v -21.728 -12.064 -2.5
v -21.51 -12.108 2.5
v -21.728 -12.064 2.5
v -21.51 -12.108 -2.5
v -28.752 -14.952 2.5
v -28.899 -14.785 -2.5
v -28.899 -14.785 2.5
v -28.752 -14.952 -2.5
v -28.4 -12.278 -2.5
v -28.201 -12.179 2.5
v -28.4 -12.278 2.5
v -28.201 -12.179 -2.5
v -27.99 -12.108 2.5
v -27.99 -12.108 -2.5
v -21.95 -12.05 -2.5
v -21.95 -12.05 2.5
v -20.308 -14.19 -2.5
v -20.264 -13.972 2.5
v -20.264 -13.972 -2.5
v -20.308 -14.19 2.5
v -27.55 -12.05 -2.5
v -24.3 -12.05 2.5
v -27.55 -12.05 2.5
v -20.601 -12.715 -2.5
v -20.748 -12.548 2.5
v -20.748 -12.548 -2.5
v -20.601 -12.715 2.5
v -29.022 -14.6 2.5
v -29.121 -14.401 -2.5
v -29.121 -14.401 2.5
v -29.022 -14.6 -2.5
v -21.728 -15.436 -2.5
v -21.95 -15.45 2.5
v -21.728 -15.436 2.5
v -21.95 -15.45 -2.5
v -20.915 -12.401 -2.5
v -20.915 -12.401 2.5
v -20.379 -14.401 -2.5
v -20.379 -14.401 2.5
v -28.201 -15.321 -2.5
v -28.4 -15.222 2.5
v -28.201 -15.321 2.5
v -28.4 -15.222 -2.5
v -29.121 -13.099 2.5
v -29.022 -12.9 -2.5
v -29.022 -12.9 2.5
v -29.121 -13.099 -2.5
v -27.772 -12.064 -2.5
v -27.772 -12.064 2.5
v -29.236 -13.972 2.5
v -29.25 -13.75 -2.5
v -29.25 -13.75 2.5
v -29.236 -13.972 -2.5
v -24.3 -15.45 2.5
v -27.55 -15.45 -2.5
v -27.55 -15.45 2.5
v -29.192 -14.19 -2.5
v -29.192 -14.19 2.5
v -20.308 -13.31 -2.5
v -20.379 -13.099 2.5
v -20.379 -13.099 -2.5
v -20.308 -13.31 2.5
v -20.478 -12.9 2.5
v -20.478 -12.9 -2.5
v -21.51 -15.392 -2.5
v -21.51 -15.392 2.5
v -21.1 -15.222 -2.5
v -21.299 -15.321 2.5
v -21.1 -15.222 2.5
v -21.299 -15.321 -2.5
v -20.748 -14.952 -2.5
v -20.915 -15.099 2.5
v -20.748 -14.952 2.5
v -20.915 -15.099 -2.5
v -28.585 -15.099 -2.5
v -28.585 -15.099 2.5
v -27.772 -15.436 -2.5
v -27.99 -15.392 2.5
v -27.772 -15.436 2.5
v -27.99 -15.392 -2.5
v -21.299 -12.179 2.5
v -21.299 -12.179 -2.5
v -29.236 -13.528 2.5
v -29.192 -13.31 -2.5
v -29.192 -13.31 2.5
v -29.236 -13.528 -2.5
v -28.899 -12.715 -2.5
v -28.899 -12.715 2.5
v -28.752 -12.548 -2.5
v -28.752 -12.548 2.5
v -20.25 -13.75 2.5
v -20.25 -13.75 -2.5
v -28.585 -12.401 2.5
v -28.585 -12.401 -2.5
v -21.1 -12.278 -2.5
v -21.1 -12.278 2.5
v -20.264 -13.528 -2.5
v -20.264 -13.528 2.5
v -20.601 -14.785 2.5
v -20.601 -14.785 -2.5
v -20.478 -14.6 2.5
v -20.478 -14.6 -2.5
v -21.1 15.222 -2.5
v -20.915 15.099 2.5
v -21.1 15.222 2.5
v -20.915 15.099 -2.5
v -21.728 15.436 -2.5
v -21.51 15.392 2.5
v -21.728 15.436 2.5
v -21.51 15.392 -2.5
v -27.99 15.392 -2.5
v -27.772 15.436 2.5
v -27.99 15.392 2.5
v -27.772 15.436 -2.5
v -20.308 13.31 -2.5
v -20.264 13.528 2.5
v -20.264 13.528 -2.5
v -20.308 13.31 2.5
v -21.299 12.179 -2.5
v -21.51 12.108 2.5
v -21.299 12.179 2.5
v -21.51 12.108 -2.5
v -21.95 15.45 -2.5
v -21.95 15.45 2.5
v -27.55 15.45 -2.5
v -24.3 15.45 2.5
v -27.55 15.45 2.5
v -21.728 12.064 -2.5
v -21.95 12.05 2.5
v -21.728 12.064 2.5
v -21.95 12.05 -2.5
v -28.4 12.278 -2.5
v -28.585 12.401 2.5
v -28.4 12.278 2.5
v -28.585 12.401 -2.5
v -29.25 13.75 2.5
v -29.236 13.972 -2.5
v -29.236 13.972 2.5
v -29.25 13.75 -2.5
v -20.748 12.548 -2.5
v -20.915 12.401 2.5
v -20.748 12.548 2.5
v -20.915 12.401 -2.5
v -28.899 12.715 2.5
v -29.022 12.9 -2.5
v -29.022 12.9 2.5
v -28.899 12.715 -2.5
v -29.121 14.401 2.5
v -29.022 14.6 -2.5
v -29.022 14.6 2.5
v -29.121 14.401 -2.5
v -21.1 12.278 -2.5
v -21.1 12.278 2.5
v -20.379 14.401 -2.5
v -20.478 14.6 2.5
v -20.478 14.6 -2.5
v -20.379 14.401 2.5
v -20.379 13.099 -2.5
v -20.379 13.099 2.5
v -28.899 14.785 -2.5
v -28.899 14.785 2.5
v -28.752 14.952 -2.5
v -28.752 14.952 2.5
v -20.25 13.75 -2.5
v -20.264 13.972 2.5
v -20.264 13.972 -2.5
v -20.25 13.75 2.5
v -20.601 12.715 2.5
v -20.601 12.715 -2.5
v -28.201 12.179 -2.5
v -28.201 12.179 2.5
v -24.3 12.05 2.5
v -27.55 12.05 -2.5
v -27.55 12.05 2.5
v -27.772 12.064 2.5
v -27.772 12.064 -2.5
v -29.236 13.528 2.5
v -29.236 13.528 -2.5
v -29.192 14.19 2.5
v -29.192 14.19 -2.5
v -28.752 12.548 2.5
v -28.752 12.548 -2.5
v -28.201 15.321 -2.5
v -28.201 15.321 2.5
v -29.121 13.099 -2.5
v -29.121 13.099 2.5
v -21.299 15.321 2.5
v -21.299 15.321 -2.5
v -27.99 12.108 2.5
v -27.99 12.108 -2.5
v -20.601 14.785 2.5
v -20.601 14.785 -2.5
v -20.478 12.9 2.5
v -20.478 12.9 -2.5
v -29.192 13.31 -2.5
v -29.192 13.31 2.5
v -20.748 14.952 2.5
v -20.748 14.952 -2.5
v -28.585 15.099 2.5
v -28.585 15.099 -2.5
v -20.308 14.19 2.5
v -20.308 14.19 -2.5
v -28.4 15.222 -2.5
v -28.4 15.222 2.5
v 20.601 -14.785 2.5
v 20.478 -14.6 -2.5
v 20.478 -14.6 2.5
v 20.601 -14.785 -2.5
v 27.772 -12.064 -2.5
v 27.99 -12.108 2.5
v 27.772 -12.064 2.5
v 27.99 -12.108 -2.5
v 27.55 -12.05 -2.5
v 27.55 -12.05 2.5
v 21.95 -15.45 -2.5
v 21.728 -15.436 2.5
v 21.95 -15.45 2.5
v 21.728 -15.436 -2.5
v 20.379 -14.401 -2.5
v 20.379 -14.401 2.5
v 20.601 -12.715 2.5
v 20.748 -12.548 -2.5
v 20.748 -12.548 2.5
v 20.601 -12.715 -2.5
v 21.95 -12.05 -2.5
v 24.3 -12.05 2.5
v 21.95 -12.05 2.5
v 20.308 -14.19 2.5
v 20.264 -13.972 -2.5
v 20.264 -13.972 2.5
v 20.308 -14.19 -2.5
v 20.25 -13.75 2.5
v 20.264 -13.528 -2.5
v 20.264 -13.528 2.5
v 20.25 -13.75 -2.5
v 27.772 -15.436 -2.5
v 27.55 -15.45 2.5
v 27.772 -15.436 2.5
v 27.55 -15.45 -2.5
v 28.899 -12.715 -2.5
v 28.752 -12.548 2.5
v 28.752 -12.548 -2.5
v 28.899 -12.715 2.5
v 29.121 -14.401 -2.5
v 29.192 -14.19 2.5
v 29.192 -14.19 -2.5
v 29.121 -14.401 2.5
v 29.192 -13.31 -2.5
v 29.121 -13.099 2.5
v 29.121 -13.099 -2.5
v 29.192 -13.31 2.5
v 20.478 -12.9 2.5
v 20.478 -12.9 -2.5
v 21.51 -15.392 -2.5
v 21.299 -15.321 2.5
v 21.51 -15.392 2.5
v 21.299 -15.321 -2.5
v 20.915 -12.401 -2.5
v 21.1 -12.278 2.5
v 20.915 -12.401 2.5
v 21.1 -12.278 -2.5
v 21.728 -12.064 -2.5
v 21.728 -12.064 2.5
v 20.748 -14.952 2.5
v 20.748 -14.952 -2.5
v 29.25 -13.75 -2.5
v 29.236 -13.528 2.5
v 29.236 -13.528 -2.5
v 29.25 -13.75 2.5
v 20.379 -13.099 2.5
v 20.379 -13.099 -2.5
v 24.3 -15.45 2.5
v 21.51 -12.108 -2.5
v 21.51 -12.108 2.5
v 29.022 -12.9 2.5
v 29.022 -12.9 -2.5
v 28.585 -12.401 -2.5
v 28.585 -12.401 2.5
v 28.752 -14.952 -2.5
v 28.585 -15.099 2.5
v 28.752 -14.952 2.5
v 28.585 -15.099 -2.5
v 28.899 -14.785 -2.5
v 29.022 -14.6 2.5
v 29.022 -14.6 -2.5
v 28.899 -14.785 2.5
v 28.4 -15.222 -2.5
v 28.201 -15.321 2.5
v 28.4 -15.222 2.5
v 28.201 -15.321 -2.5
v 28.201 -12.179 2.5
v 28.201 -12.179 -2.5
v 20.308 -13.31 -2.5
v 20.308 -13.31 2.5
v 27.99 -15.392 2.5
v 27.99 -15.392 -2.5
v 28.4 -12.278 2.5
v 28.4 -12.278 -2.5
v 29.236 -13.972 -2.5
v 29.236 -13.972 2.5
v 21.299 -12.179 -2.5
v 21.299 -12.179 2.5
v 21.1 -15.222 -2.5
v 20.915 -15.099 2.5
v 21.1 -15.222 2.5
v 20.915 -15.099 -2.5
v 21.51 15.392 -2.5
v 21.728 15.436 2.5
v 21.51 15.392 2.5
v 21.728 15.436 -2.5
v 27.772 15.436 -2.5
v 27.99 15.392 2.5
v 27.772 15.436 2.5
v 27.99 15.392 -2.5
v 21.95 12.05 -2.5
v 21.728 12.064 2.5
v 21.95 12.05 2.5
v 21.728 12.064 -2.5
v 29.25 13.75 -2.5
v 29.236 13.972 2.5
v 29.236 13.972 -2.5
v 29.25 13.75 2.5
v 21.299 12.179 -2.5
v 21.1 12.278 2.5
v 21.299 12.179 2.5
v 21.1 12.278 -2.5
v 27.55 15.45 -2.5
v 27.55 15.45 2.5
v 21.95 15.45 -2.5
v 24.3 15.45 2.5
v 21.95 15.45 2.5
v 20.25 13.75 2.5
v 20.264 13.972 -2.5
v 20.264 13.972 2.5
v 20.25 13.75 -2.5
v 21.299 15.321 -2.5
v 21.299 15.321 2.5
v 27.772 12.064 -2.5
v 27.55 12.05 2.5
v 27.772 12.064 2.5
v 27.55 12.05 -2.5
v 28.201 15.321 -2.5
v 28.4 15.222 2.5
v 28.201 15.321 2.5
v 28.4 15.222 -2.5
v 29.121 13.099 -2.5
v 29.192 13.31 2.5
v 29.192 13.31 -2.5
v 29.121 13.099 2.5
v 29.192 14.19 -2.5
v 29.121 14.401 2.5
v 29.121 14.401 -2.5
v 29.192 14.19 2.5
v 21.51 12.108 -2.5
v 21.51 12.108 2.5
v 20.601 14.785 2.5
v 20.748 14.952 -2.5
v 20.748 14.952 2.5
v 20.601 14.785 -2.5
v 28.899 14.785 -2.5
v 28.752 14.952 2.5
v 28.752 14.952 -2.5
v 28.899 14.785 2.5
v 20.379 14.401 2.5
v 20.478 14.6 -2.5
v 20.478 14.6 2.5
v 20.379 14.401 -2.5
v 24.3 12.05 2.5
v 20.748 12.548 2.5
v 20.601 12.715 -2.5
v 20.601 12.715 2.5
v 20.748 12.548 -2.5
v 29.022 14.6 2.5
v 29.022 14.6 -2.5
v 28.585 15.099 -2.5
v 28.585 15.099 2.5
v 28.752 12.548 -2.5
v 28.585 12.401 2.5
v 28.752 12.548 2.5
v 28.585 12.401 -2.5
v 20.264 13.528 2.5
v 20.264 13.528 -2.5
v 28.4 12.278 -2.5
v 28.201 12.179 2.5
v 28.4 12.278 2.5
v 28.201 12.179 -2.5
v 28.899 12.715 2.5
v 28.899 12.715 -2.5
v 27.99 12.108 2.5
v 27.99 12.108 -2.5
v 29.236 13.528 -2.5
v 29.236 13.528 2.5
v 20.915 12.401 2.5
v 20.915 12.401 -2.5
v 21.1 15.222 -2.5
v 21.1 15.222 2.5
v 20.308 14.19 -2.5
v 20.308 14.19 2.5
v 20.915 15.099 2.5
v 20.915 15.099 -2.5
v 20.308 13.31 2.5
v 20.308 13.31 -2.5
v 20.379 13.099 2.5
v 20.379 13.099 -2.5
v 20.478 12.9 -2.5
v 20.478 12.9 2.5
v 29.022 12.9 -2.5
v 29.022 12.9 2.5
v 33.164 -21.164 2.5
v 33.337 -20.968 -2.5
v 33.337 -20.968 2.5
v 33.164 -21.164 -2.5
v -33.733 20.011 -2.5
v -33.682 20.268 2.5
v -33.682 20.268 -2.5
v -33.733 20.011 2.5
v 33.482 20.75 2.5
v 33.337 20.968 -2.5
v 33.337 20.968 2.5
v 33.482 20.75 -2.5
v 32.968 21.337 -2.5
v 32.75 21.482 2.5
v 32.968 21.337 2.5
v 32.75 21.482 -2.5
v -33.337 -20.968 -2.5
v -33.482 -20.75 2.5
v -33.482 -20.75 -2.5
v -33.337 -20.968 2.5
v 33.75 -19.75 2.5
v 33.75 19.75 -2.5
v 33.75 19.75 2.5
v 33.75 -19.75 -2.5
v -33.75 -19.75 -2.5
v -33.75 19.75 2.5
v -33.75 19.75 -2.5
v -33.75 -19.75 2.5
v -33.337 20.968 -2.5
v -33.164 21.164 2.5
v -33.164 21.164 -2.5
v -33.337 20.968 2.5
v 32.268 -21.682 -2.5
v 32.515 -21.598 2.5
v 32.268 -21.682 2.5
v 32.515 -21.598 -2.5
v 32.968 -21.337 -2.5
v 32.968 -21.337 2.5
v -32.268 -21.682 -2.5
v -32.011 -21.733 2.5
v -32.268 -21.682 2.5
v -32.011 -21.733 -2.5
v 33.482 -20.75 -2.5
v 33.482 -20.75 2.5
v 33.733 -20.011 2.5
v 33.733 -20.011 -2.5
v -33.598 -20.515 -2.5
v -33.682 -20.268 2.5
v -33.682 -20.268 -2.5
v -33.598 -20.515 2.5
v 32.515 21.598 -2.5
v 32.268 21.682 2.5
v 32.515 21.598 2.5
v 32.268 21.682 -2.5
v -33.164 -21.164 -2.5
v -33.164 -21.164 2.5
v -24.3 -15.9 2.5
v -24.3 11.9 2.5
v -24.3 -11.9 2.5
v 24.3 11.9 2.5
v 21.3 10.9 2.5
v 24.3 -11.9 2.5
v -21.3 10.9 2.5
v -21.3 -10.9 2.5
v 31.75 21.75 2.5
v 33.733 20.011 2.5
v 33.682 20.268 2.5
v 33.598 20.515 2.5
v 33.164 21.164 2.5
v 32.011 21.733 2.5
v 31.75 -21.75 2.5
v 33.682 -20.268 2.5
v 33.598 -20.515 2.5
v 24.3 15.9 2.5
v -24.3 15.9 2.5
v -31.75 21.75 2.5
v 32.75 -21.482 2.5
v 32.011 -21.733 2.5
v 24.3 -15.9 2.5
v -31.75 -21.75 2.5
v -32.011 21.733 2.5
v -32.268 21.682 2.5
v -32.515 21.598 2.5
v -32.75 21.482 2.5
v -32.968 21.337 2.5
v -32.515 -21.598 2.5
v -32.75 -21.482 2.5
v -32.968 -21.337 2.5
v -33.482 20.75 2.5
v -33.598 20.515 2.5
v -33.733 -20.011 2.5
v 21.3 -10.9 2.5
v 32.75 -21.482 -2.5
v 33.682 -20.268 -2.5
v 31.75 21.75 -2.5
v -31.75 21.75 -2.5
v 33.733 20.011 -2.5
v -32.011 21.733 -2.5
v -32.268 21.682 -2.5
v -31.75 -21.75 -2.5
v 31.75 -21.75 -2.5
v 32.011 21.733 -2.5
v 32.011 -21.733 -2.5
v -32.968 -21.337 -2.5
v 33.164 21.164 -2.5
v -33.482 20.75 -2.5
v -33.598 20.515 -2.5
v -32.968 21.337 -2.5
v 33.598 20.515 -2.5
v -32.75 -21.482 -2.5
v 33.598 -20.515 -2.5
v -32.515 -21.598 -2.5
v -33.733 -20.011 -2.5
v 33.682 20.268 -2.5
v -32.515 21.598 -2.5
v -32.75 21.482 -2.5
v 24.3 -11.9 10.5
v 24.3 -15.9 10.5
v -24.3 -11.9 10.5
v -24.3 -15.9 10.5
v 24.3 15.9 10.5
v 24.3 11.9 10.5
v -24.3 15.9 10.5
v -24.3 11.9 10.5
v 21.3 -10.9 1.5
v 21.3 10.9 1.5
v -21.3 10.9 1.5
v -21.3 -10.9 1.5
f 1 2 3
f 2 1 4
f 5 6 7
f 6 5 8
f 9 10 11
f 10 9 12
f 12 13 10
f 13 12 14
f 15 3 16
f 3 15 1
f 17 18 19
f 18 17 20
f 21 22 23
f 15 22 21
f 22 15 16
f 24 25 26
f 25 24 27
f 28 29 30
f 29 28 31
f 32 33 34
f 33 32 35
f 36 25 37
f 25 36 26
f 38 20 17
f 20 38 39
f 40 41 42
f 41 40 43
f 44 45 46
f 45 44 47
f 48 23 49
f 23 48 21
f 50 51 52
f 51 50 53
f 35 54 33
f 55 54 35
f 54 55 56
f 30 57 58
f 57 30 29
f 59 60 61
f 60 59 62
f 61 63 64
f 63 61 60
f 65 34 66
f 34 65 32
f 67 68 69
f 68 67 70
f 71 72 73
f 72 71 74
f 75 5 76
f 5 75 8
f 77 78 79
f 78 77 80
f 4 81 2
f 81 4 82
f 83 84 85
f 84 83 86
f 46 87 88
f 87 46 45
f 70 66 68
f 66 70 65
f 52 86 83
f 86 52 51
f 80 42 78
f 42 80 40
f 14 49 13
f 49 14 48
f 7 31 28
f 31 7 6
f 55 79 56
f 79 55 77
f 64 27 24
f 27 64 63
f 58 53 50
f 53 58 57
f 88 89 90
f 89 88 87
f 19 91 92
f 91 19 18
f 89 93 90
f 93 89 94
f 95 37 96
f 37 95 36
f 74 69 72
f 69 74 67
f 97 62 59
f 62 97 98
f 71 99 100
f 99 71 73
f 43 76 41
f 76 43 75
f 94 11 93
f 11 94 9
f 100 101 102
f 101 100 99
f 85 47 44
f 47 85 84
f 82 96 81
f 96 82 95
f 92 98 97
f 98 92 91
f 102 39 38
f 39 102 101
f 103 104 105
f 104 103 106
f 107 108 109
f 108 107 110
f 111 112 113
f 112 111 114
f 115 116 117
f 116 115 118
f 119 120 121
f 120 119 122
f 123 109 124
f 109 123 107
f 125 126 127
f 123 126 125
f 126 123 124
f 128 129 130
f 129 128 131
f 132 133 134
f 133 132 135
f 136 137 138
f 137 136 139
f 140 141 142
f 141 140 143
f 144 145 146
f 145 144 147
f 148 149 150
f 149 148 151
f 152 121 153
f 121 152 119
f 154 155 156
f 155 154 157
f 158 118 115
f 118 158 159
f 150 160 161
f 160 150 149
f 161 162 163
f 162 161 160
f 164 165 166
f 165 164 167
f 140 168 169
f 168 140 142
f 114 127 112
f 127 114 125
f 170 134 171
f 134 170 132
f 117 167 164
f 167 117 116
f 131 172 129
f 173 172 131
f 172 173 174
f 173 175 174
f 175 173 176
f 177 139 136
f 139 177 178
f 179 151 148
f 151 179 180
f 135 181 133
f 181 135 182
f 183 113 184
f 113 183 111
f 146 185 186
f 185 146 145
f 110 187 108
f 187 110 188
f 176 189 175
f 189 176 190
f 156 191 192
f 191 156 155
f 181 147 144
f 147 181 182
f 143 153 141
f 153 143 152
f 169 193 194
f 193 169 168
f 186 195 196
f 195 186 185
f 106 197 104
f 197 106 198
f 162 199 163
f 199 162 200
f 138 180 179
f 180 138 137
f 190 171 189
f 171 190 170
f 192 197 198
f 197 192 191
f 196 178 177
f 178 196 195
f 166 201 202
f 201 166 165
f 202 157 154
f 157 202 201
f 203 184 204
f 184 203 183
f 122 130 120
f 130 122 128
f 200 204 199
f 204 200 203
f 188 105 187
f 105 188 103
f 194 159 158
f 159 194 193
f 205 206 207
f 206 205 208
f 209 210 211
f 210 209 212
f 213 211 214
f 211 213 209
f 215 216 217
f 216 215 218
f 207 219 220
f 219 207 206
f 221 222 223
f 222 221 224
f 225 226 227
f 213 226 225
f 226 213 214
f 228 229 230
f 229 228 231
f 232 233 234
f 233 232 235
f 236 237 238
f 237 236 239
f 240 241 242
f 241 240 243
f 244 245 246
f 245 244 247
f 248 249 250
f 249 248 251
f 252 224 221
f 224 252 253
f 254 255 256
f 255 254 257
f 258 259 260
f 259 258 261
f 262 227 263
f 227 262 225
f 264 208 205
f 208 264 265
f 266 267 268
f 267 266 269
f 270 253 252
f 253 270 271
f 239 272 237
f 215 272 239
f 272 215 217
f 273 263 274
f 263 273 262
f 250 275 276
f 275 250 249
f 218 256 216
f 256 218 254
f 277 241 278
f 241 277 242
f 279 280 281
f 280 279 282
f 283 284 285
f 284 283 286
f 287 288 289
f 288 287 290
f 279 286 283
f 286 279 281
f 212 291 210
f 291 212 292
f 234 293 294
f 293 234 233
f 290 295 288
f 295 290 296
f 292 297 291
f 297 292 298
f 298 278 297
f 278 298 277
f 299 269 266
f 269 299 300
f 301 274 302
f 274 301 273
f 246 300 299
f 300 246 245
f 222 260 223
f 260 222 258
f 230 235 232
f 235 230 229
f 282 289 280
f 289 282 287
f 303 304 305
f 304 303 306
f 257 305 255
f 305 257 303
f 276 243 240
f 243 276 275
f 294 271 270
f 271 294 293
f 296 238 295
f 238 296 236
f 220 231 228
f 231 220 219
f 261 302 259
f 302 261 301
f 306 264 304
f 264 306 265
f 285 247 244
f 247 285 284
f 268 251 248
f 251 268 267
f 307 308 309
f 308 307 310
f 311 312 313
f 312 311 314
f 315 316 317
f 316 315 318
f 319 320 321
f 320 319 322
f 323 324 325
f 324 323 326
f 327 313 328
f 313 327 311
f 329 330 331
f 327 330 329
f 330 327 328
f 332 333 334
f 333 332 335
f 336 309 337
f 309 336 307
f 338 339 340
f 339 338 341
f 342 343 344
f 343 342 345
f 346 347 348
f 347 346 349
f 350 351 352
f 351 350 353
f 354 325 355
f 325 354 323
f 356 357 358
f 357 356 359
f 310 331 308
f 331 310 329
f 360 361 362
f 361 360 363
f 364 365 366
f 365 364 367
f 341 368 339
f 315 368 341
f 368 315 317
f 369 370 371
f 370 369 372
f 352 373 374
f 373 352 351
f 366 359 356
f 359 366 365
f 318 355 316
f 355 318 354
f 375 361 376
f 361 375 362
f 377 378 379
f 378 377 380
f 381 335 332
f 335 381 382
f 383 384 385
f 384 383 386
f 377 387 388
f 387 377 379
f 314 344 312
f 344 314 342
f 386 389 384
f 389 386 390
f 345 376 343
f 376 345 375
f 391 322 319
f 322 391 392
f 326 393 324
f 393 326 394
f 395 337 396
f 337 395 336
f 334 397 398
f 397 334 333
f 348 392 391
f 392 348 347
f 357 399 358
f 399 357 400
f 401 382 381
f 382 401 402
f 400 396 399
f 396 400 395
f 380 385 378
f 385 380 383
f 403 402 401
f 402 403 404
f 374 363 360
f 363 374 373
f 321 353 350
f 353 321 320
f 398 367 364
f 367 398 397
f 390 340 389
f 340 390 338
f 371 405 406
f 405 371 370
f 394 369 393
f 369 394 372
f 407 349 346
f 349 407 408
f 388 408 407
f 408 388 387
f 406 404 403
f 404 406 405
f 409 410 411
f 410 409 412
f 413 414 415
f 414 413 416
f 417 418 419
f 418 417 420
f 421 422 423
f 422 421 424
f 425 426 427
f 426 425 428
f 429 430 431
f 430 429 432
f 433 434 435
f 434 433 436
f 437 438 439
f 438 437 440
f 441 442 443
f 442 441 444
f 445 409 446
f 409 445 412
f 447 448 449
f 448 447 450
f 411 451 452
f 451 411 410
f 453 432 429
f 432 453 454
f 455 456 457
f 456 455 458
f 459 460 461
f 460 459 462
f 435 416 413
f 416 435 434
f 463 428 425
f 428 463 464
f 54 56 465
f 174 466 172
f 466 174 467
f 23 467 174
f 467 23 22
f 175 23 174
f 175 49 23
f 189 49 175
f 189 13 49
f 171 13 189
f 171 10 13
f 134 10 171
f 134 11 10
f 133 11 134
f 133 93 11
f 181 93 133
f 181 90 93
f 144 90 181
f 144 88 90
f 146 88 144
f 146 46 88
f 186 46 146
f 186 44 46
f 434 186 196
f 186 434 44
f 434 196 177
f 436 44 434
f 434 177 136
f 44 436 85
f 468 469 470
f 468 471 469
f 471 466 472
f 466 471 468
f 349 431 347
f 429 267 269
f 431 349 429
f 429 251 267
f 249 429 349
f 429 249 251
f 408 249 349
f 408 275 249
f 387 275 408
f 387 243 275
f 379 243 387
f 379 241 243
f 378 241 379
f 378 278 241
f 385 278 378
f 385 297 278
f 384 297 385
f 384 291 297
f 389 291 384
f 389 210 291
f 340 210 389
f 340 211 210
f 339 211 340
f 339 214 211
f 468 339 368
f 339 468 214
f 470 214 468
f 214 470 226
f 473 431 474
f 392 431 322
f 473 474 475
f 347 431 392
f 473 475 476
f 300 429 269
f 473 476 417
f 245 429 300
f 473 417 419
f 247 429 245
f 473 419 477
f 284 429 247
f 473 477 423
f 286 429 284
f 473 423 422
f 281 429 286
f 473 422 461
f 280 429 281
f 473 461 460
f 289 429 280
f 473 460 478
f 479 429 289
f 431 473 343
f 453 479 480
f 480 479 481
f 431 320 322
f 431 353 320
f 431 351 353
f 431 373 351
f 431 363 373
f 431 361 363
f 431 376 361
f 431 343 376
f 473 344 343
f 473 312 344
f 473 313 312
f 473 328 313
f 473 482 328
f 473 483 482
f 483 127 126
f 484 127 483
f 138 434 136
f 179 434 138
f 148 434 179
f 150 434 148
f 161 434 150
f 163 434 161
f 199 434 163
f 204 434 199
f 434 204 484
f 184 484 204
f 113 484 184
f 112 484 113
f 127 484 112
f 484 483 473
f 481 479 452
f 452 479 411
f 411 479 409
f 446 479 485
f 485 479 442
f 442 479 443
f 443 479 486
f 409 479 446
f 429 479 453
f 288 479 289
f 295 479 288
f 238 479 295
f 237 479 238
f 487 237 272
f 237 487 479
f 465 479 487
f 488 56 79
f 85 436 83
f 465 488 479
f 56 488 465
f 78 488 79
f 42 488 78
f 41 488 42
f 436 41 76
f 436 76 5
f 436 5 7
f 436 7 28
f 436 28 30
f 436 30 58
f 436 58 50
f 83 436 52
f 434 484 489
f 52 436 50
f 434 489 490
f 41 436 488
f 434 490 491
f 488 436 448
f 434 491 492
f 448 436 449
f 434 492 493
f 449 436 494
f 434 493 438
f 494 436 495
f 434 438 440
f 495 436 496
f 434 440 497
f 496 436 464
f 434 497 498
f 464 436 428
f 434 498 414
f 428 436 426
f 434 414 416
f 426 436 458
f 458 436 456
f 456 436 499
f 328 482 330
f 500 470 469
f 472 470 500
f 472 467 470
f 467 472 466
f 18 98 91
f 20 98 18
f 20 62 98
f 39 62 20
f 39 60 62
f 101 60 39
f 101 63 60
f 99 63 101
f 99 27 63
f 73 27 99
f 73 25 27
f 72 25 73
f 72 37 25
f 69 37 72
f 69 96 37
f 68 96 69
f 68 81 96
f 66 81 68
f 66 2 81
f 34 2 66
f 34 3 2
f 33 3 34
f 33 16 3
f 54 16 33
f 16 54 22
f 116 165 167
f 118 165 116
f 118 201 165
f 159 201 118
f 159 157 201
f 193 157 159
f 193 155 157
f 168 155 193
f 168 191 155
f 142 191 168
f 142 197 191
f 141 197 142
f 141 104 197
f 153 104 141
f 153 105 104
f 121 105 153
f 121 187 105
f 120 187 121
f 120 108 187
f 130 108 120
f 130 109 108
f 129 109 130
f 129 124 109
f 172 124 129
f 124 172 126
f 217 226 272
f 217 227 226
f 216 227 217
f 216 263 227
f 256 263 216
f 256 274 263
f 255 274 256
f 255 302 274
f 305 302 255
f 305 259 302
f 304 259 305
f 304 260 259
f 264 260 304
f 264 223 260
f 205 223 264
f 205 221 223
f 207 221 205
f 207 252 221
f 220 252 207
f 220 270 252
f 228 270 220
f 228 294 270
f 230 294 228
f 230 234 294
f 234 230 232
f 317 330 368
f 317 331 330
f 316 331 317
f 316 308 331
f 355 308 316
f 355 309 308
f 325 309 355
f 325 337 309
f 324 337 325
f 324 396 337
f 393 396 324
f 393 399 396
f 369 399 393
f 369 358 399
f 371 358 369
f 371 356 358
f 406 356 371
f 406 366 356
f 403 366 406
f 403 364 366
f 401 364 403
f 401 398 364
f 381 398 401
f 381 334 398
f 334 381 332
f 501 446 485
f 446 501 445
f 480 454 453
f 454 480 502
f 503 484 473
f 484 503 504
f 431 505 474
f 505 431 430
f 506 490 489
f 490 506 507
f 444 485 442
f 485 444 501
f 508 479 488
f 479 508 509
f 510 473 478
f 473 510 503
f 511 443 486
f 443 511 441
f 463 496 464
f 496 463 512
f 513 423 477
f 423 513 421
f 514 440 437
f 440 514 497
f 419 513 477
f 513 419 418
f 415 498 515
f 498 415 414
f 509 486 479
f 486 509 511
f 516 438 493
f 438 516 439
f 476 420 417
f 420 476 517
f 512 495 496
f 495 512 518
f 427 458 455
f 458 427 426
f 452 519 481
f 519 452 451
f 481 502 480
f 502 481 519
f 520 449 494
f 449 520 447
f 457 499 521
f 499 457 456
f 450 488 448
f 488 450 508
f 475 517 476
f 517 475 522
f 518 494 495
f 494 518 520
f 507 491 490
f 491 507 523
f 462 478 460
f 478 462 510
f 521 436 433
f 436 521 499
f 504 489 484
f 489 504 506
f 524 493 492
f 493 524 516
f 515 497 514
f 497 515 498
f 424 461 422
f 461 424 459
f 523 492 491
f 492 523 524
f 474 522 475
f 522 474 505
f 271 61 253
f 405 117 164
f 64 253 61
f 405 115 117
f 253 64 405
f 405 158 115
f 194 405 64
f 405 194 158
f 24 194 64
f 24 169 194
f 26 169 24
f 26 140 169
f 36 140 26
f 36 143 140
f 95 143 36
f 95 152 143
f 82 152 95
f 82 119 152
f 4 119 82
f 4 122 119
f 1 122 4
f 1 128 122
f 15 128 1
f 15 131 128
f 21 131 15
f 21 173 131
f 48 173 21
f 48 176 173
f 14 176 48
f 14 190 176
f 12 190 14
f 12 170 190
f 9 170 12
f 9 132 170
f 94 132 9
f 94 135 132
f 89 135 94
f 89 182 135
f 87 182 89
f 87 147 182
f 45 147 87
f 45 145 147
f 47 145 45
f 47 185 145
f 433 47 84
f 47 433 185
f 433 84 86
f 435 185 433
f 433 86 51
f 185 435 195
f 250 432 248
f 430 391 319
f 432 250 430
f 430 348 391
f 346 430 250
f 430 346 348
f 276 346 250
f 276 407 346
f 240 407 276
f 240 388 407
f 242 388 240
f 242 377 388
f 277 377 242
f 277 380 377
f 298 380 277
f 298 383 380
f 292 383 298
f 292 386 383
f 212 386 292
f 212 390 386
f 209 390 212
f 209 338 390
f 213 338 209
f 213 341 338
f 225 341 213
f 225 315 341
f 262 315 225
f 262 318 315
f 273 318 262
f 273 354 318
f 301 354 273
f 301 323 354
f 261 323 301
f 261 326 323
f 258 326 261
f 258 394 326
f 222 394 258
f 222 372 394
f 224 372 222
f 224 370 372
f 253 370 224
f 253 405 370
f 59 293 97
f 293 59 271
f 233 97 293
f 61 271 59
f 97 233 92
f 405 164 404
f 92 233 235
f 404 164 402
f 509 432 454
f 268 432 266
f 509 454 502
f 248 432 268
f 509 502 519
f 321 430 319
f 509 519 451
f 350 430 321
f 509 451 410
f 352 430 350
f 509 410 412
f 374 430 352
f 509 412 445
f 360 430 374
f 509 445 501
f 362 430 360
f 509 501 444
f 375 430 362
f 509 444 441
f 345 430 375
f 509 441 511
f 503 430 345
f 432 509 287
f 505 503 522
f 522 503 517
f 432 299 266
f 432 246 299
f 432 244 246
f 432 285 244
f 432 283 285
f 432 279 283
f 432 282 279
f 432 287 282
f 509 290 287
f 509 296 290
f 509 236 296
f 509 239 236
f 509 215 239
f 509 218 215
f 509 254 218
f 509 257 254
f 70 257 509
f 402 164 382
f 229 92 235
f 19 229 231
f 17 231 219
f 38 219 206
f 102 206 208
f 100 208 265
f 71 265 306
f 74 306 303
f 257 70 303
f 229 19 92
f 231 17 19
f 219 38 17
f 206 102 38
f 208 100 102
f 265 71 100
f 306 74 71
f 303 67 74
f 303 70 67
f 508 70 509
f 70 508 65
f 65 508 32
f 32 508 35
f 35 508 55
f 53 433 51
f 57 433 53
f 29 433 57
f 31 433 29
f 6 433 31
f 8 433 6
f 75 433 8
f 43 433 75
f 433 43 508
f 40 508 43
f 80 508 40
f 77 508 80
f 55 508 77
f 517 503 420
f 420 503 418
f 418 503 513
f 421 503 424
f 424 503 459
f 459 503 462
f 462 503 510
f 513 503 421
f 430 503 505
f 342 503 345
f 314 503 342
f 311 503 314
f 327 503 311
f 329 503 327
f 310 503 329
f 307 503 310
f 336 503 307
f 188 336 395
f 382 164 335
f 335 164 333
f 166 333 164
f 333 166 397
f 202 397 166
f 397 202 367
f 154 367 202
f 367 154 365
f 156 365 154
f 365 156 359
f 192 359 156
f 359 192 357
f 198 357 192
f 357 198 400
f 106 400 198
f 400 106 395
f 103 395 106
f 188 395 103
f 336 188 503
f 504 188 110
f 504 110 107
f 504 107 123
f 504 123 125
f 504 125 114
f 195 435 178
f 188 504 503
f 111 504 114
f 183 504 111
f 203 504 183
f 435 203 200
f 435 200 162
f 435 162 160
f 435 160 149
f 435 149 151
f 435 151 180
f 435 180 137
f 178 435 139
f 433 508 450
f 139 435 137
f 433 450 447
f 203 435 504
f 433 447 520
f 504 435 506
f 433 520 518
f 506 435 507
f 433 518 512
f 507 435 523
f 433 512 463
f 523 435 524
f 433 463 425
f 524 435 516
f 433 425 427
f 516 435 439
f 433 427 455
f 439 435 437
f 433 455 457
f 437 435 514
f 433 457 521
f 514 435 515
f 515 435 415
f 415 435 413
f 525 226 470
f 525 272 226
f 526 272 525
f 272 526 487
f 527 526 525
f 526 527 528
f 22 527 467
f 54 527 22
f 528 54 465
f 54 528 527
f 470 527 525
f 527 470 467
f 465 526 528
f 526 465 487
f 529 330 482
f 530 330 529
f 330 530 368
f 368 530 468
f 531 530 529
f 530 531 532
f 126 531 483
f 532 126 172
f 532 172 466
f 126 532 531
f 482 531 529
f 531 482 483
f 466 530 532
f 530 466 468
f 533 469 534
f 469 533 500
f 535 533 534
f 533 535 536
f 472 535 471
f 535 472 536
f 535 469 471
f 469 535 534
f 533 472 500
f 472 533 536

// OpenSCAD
// file: common.scad
// Shared Rev A CAD parameters and helper modules.
// Units: millimeters.

$fn = 48;

// Hitec HS-625MG vendor baseline. Verify with calipers before final print.
servo_l = 40.6;
servo_w = 19.8;
servo_h = 37.8;
spline_d = 6.0;
spline_h = 5.0;
servo_mount_slot_l = 9.0;
servo_mount_slot_w = 3.4;
servo_mount_span_x = 49.5;
servo_mount_span_y = 27.5;

// Rev A structure.
base_l = 160;
base_w = 120;
base_t = 6;
wall_t = 6;
mount_t = 5;
outer_w = 95;
outer_h = 95;
outer_depth = 16;
inner_w = 55;
inner_h = 72;
nozzle_l = 85;
nozzle_d = 24;
imu_l = 28;
imu_w = 22;
bearing_d = 8.0;
shaft_d = 4.0;

// Manufacturing assumptions.
m3_clearance_d = 3.4;
bench_fastener_d = 5.0;
fillet_r = 3.0;

module rounded_plate(size_xyz, r=3) {
    hull() {
        for (x=[-size_xyz[0]/2+r, size_xyz[0]/2-r])
            for (y=[-size_xyz[1]/2+r, size_xyz[1]/2-r])
                translate([x, y, 0])
                    cylinder(h=size_xyz[2], r=r, center=true);
    }
}

module slotted_hole(slot_l, slot_w, h=2) {
    hull() {
        translate([-slot_l/2 + slot_w/2, 0, 0])
            cylinder(h=h, d=slot_w, center=true);
        translate([slot_l/2 - slot_w/2, 0, 0])
            cylinder(h=h, d=slot_w, center=true);
    }
}

module servo_mount_plate() {
    difference() {
        rounded_plate([servo_mount_span_x + 18, servo_mount_span_y + 16, mount_t], 2);

        for (x=[-servo_mount_span_x/2, servo_mount_span_x/2])
            for (y=[-servo_mount_span_y/2, servo_mount_span_y/2])
                translate([x, y, 0])
                    slotted_hole(servo_mount_slot_l, servo_mount_slot_w, mount_t + 1);
    }
}

module servo_body_clearance(extra=1.0) {
    cube([servo_l + extra, servo_w + extra, servo_h + extra], center=true);
}

module shaft_clearance(h=120) {
    rotate([90, 0, 0])
        cylinder(h=h, d=shaft_d + 0.6, center=true);
}

module imu_pad() {
    difference() {
        rounded_plate([imu_l + 8, imu_w + 8, 3], 2);
        for (x=[-(imu_l/2 - 4), imu_l/2 - 4])
            for (y=[-(imu_w/2 - 4), imu_w/2 - 4])
                translate([x, y, 0])
                    cylinder(h=4, d=2.2, center=true);
    }
}
// main file
include <common.scad>

// Rev A yaw servo mount.
// Print flat with slots in the XY plane.

difference() {
    union() {
        servo_mount_plate();

        // Alignment rail references for the HS-625MG body.
        translate([0, -(servo_w/2 + 4), mount_t/2 + 4])
            cube([servo_l + 8, 4, 8], center=true);
        translate([0, servo_w/2 + 4, mount_t/2 + 4])
            cube([servo_l + 8, 4, 8], center=true);
    }

    // Keep the servo body area open for fit tolerance.
    translate([0, 0, mount_t/2 + servo_h/2])
        servo_body_clearance(2);
}
